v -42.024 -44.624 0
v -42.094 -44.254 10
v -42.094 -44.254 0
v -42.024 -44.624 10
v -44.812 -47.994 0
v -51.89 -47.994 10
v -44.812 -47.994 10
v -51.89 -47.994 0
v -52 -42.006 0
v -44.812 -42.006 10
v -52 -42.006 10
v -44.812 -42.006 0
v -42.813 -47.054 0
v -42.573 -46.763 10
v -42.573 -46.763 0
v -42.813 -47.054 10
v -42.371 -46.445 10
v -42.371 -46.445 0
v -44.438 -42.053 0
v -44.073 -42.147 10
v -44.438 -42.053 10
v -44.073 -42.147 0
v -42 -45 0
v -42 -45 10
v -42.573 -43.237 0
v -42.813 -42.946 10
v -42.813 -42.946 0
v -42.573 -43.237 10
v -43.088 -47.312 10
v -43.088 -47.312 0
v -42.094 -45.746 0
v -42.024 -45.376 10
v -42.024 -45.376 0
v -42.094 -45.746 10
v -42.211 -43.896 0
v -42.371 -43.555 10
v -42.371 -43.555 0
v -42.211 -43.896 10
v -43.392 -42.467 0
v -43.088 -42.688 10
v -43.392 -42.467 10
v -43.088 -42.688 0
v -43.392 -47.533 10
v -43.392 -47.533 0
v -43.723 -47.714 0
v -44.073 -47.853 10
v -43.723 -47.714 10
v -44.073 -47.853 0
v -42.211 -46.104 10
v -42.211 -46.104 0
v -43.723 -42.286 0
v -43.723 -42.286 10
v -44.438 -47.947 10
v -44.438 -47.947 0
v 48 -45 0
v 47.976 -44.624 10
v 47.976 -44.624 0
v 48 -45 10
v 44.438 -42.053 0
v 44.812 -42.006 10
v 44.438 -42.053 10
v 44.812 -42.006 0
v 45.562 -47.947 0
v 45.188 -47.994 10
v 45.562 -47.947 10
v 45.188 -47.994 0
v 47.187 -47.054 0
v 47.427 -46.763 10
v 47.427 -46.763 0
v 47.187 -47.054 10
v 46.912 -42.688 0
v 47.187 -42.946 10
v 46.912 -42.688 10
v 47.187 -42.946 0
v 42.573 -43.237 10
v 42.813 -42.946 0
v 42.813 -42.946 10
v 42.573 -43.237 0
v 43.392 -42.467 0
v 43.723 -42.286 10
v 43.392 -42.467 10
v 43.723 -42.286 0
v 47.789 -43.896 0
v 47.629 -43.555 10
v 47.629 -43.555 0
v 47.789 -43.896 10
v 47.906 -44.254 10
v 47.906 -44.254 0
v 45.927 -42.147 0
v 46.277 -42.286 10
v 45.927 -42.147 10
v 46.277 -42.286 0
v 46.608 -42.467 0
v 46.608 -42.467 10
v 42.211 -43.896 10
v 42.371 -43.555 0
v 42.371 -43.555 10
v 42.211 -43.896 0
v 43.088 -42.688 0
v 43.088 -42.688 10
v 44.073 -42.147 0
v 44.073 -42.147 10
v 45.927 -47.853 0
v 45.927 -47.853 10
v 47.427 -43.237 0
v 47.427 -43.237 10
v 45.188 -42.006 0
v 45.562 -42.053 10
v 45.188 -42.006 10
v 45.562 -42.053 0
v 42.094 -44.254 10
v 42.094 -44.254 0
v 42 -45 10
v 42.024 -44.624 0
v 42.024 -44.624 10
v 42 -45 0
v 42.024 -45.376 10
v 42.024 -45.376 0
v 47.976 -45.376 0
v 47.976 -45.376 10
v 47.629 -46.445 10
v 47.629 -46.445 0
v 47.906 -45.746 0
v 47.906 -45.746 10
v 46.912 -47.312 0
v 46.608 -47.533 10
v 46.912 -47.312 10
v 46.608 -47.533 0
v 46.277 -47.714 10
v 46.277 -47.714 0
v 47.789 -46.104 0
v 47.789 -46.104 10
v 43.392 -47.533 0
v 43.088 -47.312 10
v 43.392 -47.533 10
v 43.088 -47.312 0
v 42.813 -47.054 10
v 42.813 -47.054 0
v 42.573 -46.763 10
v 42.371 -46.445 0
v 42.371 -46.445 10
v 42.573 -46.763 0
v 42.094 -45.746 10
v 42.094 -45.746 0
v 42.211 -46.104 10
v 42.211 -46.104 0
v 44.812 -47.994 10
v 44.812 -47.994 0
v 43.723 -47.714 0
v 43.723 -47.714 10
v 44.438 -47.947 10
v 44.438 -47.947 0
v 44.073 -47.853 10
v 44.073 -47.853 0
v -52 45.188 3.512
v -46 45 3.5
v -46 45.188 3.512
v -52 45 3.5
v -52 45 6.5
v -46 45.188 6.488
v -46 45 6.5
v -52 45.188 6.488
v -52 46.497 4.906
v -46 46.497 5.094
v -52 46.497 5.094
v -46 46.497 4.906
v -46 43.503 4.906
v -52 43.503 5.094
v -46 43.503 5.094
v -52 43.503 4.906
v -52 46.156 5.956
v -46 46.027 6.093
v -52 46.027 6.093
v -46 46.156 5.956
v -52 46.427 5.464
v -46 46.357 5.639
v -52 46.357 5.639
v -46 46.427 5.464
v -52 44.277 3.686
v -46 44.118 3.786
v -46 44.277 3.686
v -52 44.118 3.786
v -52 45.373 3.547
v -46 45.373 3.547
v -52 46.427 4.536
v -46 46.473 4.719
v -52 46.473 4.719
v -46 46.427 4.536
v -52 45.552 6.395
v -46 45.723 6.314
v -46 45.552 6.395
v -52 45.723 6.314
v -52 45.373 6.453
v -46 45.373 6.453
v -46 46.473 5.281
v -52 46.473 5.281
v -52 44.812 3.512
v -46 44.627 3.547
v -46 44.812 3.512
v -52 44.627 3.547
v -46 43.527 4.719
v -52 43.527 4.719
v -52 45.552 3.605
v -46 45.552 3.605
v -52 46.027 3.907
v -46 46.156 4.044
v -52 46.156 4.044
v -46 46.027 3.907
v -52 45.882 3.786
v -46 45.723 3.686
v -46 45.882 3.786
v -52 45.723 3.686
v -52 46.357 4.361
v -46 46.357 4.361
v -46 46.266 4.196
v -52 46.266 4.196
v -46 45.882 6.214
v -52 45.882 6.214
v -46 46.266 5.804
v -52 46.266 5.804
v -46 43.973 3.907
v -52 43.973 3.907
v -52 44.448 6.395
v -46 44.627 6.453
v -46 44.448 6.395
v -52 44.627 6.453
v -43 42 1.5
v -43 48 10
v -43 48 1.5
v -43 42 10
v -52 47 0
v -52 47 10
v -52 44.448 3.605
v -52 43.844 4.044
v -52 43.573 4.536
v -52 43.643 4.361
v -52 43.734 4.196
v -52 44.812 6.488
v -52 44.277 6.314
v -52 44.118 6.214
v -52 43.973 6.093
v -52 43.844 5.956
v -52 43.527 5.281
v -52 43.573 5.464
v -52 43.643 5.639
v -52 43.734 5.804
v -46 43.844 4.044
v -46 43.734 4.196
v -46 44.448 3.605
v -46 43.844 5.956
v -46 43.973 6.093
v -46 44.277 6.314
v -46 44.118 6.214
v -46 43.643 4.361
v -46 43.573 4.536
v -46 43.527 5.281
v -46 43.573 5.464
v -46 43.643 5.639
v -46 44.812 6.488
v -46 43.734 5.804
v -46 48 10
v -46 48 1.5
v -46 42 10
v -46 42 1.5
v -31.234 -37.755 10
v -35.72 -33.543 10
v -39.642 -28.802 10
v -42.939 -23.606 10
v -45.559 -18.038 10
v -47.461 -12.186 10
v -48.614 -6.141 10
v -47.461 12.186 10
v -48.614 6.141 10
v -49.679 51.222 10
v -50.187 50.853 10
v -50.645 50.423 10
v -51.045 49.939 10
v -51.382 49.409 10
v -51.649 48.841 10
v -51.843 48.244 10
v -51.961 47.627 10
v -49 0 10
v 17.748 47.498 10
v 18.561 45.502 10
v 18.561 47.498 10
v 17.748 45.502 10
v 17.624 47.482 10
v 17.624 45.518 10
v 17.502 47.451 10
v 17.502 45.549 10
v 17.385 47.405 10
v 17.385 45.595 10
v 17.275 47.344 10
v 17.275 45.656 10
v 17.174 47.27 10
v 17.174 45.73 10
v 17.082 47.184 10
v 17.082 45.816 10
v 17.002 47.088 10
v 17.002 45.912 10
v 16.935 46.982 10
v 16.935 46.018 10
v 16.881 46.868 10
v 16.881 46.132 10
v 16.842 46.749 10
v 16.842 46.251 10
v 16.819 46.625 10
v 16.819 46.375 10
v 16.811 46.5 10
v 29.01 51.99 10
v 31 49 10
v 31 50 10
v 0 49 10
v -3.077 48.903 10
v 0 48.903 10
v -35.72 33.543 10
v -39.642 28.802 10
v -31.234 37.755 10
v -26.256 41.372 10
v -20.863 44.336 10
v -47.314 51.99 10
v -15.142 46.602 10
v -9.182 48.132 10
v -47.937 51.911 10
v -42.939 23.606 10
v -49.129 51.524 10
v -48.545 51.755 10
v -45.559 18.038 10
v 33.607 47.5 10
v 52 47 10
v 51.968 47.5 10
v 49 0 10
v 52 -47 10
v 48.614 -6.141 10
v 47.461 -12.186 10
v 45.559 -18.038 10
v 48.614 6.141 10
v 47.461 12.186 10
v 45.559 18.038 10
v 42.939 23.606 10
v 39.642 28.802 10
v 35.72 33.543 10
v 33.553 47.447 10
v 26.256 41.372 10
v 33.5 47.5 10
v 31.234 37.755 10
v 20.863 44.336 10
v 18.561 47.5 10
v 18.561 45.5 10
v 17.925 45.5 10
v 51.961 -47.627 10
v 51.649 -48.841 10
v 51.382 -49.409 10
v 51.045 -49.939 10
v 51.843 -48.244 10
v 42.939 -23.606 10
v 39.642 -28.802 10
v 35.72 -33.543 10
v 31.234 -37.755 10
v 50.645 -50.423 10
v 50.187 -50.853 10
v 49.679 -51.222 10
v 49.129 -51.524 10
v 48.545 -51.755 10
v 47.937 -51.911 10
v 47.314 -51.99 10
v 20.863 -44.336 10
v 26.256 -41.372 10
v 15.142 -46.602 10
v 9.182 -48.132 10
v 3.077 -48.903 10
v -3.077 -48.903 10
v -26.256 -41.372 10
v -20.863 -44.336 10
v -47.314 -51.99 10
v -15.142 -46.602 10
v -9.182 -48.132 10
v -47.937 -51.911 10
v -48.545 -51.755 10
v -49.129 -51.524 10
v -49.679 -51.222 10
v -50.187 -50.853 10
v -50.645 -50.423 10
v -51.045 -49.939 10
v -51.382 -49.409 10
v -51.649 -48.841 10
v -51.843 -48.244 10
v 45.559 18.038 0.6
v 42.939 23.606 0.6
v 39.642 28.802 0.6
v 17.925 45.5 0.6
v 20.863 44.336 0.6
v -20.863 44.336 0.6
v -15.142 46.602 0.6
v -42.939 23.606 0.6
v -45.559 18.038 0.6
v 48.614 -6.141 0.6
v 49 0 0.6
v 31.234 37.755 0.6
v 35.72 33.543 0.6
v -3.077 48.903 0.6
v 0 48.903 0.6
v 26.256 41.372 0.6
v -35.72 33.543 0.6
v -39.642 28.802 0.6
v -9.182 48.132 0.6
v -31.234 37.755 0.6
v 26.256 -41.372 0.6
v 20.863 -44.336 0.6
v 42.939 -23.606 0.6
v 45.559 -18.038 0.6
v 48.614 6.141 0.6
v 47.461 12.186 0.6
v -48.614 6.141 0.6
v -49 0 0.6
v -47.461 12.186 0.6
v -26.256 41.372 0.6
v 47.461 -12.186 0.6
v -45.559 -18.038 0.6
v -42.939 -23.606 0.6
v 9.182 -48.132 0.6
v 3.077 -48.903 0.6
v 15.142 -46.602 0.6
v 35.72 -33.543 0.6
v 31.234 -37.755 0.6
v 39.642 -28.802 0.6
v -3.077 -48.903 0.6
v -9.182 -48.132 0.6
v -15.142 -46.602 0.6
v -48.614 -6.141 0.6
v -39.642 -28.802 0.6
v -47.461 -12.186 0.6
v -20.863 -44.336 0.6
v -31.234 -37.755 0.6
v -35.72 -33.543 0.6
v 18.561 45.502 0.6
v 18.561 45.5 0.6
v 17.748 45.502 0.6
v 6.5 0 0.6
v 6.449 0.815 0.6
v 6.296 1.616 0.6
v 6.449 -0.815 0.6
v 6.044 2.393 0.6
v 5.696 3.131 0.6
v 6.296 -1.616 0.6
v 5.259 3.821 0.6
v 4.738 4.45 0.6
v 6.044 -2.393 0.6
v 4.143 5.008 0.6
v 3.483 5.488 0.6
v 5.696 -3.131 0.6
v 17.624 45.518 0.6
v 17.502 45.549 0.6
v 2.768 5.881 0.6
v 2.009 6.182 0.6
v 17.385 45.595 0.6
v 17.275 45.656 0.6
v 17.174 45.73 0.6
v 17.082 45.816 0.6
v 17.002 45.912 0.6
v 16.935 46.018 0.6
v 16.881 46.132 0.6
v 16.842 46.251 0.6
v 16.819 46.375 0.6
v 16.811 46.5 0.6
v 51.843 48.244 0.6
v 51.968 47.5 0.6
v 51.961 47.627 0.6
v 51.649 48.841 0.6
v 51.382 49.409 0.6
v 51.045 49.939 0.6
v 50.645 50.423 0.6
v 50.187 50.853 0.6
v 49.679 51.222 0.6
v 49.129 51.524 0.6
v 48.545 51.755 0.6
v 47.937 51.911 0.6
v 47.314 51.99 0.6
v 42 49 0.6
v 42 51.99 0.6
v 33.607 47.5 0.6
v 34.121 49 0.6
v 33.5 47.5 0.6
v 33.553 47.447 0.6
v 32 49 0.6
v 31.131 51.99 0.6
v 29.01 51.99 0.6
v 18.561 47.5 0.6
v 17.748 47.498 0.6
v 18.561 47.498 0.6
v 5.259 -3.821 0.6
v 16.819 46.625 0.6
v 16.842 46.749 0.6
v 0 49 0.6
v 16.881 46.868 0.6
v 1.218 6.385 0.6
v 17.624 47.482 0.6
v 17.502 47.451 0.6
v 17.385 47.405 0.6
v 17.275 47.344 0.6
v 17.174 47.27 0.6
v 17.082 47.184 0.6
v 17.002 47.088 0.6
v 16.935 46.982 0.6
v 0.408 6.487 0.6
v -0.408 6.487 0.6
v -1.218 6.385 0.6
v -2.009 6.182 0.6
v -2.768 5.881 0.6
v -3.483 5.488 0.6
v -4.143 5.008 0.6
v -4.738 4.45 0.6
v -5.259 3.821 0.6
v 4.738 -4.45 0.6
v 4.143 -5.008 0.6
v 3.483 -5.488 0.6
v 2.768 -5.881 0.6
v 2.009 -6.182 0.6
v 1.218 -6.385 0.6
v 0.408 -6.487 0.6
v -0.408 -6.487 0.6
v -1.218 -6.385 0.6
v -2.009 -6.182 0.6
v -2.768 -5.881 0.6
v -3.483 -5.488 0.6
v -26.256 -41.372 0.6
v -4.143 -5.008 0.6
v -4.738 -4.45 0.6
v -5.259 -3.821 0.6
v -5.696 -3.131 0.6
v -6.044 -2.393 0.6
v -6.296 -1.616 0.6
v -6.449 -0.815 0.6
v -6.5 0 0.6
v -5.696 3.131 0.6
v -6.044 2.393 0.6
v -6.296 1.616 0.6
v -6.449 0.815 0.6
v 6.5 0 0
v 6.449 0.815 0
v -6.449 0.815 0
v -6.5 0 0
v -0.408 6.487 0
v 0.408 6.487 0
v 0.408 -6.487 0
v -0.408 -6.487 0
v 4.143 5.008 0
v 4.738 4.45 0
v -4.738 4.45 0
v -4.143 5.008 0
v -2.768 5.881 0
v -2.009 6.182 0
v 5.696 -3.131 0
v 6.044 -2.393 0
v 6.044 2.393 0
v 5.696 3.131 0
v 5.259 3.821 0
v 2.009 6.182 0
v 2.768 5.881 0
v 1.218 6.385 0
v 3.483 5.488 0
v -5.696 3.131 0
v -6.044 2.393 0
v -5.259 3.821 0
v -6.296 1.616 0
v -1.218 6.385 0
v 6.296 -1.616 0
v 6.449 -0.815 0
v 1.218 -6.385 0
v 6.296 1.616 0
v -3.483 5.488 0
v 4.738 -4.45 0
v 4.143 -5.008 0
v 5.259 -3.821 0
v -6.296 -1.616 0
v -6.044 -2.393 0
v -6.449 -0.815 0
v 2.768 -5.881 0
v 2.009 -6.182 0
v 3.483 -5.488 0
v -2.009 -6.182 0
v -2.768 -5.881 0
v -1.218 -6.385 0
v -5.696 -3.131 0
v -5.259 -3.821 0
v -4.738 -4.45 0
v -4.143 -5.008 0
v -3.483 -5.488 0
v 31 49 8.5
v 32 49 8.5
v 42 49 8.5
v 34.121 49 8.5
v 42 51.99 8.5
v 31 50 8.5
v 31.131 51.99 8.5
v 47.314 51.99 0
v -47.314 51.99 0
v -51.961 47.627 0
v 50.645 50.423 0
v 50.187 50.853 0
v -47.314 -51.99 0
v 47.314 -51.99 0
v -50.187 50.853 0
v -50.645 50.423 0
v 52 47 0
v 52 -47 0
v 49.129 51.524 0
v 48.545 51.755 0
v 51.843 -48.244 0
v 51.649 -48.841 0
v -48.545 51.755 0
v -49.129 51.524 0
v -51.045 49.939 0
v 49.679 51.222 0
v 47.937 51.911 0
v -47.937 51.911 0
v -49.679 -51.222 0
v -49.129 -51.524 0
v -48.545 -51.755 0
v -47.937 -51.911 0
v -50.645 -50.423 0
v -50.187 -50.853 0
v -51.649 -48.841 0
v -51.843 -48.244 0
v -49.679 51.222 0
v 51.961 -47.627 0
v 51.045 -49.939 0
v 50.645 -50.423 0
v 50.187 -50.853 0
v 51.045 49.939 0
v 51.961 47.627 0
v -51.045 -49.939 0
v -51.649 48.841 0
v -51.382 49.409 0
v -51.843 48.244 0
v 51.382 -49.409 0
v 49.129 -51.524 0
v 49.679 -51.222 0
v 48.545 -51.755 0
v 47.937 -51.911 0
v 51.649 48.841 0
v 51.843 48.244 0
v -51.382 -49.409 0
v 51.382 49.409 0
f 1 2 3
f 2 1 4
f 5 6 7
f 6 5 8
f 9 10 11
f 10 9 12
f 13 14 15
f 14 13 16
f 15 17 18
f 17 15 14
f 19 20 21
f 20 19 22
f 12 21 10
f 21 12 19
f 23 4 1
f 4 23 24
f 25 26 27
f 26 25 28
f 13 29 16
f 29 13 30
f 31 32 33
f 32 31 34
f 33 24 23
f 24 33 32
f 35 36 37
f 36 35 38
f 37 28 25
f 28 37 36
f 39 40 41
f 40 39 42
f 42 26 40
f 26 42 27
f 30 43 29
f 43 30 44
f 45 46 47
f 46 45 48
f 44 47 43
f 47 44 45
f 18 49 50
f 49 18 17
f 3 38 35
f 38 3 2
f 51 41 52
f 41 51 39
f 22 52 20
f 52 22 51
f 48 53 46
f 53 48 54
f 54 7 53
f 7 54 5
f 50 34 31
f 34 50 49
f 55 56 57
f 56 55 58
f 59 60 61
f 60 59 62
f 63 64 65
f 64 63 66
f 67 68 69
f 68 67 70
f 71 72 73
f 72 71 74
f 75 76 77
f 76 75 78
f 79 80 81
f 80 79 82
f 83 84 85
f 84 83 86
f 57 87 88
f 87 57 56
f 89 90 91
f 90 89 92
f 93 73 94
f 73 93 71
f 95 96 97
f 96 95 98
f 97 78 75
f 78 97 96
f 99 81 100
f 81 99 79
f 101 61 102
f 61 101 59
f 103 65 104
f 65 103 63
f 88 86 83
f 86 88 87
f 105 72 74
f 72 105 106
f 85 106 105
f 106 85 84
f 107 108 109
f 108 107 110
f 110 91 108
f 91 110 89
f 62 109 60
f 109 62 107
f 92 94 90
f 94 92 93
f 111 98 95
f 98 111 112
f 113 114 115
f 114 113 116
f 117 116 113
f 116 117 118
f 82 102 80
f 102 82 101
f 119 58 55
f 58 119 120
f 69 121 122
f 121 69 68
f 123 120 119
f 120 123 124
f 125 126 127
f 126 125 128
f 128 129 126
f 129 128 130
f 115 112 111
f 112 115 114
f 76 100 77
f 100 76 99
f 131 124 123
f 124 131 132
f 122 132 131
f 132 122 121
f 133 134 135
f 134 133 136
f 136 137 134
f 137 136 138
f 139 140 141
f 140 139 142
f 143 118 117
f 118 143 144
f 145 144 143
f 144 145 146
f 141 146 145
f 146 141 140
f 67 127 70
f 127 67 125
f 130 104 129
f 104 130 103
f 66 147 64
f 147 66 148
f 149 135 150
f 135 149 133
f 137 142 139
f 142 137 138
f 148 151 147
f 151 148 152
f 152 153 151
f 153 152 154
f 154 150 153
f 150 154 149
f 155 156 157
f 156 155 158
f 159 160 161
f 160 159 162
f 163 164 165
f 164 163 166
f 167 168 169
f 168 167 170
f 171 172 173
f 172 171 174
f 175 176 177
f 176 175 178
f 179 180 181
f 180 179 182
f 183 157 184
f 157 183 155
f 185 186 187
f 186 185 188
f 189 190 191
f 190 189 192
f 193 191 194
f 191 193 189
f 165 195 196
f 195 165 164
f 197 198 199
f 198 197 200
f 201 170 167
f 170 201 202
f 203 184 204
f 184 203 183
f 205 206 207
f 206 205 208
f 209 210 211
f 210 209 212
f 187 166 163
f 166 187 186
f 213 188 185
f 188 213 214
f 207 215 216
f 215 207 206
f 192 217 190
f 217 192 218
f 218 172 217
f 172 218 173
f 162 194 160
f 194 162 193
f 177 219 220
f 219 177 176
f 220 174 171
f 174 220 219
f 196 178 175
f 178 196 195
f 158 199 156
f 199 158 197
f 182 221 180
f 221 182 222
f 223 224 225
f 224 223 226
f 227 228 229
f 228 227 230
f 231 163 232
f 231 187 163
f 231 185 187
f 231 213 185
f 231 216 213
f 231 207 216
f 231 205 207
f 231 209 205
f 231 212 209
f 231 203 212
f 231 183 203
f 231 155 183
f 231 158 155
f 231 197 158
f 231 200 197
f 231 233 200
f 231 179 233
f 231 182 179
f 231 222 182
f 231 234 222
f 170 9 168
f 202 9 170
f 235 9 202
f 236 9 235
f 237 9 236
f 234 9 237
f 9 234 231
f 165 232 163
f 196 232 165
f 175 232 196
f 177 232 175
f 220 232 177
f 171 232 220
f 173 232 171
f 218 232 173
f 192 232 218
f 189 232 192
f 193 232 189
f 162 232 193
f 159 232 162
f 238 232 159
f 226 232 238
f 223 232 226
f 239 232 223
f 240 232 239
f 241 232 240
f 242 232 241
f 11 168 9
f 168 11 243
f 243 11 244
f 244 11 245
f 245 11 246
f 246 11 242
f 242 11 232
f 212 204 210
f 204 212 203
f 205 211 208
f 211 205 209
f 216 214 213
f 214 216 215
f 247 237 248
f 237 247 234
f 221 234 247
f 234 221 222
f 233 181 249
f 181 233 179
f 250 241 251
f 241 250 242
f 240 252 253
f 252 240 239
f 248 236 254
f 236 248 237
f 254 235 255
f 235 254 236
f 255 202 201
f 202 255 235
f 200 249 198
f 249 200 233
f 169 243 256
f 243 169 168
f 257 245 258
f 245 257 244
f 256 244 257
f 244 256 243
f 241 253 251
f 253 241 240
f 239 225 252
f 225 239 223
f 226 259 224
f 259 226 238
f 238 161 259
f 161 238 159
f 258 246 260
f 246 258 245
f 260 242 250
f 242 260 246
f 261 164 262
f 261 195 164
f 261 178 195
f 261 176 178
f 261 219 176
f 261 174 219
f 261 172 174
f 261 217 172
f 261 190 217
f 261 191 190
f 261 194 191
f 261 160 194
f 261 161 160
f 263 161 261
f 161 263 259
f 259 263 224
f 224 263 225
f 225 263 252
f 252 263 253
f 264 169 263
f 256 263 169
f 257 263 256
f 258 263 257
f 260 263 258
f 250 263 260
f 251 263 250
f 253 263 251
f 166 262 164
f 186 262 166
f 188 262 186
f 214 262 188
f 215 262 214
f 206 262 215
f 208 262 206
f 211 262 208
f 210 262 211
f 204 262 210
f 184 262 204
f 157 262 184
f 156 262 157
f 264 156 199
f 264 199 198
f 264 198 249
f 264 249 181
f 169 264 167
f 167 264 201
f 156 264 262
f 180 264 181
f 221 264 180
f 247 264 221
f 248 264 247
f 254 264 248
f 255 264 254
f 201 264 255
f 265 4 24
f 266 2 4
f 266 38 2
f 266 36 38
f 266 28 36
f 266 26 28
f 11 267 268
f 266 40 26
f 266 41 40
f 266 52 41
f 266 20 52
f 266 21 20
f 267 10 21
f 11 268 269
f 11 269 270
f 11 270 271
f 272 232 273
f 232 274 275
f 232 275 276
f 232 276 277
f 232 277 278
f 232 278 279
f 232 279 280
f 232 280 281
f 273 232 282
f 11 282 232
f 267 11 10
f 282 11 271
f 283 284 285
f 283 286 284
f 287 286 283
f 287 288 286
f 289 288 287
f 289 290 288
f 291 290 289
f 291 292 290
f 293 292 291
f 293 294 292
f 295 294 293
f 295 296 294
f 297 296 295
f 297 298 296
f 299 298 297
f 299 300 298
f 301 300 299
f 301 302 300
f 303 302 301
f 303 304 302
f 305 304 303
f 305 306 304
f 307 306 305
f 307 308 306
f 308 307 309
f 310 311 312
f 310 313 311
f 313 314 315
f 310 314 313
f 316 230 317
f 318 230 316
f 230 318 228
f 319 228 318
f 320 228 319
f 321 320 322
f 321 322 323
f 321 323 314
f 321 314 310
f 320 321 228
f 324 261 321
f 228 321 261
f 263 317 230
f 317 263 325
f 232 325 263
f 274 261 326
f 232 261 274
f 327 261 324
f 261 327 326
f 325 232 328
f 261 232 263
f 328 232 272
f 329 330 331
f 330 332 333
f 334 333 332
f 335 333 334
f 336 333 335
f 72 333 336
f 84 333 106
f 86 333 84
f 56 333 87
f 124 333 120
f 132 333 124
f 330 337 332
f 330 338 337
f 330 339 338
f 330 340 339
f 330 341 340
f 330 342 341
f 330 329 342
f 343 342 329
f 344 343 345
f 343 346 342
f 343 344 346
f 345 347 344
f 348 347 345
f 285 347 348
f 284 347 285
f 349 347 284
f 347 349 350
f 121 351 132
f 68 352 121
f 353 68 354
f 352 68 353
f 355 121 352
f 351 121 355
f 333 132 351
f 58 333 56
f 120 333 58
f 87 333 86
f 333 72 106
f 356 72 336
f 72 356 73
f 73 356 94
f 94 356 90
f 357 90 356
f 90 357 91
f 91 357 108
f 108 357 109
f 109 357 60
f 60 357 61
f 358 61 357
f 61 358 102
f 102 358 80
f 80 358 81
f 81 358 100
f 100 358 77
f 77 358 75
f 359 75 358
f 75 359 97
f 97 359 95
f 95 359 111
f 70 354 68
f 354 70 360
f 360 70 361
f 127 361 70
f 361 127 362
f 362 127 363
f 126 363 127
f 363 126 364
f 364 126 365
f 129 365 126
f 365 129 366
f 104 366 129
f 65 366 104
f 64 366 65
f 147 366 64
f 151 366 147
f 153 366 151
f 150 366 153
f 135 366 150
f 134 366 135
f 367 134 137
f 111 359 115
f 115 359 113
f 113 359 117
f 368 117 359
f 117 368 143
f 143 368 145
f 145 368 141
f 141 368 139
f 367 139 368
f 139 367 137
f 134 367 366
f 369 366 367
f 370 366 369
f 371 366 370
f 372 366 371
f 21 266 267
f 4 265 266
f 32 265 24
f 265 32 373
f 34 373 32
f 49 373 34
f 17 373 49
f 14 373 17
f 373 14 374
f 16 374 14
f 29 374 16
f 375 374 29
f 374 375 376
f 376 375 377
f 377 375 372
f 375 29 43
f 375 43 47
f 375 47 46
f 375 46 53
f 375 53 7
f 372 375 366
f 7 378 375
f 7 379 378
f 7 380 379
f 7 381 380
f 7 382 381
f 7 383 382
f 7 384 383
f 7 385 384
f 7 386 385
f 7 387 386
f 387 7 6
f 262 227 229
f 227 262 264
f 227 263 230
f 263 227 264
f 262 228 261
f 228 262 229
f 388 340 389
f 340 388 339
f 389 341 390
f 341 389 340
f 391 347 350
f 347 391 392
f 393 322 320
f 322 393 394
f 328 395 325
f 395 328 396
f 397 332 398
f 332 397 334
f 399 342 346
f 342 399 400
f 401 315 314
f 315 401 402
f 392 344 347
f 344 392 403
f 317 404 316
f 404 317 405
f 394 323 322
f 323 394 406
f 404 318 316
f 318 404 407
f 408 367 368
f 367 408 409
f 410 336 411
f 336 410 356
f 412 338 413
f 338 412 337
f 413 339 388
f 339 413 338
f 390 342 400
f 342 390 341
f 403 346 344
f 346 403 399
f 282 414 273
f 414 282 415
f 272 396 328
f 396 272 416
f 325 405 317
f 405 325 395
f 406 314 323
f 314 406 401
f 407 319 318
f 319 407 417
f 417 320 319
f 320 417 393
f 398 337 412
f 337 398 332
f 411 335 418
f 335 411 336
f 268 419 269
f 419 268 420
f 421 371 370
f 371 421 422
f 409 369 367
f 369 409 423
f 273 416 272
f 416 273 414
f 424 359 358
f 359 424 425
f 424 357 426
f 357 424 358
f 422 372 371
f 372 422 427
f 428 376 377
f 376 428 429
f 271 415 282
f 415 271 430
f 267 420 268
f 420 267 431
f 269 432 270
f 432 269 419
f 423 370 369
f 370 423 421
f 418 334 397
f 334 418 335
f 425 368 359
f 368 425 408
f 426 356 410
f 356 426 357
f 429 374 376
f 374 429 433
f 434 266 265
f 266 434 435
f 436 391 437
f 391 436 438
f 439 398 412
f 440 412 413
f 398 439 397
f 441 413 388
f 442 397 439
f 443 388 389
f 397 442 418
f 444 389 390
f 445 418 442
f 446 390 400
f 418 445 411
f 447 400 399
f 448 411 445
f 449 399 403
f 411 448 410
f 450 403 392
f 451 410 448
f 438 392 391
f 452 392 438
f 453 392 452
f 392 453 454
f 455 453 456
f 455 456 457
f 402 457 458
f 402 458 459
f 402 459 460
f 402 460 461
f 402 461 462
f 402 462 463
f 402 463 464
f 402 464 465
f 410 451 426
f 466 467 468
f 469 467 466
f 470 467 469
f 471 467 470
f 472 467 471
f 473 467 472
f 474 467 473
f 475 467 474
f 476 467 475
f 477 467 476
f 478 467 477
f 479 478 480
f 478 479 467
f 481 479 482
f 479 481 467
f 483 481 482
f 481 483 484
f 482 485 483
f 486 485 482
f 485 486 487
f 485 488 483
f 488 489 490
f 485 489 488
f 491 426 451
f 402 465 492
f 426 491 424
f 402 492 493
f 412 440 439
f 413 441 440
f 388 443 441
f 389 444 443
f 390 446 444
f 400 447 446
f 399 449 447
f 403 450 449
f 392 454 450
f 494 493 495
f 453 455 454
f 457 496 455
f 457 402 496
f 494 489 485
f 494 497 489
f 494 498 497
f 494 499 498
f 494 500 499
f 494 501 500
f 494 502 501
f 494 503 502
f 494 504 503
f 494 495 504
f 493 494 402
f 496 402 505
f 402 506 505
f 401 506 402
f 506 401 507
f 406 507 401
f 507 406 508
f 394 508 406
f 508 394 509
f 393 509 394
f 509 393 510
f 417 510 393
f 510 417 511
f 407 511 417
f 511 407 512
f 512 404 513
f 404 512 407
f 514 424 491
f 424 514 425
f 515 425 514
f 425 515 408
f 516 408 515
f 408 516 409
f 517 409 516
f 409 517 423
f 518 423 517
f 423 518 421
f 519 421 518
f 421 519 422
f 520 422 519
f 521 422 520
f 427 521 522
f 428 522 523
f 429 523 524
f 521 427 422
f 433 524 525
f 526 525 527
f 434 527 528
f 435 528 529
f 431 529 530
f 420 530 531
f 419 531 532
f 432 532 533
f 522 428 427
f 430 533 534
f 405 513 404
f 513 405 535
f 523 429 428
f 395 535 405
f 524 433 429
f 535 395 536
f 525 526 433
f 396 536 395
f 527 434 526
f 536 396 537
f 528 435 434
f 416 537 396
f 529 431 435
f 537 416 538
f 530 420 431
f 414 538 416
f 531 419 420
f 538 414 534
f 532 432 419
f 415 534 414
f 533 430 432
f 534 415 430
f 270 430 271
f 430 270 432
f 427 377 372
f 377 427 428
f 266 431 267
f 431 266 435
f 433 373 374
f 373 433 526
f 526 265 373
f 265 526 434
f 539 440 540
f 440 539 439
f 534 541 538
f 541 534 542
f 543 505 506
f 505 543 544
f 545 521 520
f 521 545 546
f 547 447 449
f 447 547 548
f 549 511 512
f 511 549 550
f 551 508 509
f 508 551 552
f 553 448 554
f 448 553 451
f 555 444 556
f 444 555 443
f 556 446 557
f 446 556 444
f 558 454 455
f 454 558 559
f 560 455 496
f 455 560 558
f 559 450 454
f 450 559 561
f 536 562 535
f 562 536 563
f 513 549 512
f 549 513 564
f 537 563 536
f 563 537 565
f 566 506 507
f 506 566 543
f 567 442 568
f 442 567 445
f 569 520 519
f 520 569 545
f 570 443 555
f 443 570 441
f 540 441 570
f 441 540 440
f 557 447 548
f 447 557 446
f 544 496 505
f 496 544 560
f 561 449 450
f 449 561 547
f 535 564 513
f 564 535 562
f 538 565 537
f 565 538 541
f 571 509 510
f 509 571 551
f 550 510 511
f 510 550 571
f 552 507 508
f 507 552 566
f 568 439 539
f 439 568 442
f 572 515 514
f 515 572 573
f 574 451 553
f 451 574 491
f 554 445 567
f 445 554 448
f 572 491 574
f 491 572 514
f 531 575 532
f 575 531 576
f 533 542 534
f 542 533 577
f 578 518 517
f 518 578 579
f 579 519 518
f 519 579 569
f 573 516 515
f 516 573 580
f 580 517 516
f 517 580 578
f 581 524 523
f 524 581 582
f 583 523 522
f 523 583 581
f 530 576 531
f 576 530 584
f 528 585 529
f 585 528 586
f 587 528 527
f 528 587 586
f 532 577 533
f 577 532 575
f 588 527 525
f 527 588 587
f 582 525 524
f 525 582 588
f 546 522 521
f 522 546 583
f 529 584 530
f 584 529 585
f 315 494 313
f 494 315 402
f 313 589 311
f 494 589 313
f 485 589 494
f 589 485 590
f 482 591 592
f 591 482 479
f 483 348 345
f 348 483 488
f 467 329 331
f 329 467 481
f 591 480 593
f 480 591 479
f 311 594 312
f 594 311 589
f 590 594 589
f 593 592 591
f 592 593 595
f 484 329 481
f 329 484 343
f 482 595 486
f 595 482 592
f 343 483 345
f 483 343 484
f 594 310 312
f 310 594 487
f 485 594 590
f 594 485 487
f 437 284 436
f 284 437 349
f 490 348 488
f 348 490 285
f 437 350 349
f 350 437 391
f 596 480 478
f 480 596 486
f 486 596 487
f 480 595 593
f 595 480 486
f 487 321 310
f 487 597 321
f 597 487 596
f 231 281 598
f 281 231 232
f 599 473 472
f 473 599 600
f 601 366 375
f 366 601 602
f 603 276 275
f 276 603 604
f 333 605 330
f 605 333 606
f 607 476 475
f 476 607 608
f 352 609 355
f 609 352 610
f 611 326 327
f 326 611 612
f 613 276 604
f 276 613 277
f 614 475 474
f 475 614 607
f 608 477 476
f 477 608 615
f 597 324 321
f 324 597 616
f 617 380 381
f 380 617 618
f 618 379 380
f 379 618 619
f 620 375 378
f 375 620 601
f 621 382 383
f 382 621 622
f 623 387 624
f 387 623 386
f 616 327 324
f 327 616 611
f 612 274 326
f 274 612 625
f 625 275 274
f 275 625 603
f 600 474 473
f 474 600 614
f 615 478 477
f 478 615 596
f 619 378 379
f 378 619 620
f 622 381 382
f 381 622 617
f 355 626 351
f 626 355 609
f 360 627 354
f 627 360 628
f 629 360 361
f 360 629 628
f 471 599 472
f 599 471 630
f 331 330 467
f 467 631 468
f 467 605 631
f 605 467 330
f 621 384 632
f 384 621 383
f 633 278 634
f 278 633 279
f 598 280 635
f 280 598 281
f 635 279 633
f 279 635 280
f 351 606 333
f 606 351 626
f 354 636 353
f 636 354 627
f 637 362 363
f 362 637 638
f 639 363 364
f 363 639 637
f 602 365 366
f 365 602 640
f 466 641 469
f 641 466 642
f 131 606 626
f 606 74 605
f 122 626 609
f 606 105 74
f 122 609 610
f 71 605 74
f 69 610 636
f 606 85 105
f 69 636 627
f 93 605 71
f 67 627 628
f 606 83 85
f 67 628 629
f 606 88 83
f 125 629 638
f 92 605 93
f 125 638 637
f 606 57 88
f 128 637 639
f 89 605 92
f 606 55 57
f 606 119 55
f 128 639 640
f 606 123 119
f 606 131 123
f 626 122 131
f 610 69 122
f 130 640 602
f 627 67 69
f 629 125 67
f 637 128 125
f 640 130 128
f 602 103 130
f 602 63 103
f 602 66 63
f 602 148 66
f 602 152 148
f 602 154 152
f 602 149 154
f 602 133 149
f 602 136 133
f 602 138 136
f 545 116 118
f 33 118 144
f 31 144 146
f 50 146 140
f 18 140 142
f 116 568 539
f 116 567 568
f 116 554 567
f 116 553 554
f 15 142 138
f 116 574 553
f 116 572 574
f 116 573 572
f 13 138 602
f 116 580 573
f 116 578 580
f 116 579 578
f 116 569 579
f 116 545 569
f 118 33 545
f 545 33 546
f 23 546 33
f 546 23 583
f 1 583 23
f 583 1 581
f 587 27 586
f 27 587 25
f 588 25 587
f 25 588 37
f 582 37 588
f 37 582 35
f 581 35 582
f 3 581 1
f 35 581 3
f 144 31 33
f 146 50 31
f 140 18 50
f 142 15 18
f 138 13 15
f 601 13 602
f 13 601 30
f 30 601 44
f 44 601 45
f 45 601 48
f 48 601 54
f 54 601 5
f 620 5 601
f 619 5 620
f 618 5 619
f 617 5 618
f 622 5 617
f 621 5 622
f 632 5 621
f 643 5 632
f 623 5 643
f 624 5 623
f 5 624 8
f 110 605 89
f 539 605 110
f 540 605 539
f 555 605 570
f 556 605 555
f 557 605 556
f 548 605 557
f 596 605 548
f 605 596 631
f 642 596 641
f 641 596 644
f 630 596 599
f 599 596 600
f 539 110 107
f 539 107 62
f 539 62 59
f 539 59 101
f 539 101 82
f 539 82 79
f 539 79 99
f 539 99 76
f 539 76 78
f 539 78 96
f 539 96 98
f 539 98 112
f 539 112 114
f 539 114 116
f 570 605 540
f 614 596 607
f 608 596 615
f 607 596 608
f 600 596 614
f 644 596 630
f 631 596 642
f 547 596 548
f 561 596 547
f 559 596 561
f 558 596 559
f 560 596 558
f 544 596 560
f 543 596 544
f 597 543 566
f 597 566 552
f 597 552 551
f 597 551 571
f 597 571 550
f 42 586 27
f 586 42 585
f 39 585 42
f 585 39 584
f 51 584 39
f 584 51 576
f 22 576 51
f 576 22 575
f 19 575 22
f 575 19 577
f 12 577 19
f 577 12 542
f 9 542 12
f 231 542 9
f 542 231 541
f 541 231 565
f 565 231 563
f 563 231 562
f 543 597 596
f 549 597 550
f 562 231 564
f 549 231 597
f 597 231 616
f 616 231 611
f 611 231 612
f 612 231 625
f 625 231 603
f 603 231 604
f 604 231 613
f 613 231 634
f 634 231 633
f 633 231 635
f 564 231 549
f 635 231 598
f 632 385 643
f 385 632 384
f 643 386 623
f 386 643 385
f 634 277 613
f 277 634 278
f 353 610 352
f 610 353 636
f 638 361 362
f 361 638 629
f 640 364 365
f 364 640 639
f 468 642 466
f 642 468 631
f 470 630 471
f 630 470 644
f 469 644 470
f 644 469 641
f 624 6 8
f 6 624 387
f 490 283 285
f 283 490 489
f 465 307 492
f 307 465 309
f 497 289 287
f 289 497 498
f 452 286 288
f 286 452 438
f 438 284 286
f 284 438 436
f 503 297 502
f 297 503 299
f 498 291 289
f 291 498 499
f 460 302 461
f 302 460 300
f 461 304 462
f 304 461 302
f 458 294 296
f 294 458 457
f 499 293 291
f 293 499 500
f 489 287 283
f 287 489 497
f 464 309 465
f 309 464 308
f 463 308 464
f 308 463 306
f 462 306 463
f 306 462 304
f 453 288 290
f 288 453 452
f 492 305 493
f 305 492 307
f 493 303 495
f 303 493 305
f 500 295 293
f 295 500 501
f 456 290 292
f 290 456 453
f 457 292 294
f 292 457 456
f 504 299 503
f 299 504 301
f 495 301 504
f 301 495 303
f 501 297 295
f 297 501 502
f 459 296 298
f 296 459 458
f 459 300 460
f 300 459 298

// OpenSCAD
$fn = 50;


union() {
	difference() {
		union() {
			translate(v = [0, 0, 0]) {
				rotate(a = [0, 0, 0]) {
					hull() {
						translate(v = [-47.0000000000, 47.0000000000, 0]) {
							rotate(a = [0, 0, 0]) {
								translate(v = [0, 0, 0]) {
									rotate(a = [0, 0, 0]) {
										cylinder(h = 10, r = 5);
									}
								}
							}
						}
						translate(v = [47.0000000000, 47.0000000000, 0]) {
							rotate(a = [0, 0, 0]) {
								translate(v = [0, 0, 0]) {
									rotate(a = [0, 0, 0]) {
										cylinder(h = 10, r = 5);
									}
								}
							}
						}
						translate(v = [-47.0000000000, -47.0000000000, 0]) {
							rotate(a = [0, 0, 0]) {
								translate(v = [0, 0, 0]) {
									rotate(a = [0, 0, 0]) {
										cylinder(h = 10, r = 5);
									}
								}
							}
						}
						translate(v = [47.0000000000, -47.0000000000, 0]) {
							rotate(a = [0, 0, 0]) {
								translate(v = [0, 0, 0]) {
									rotate(a = [0, 0, 0]) {
										cylinder(h = 10, r = 5);
									}
								}
							}
						}
					}
				}
			}
		}
		union() {
			translate(v = [-52.5000000000, -45.0000000000, -125]) {
				rotate(a = [0, 0, 0]) {
					hull() {
						translate(v = [7.5000000000, 0, 0]) {
							rotate(a = [0, 0, 0]) {
								translate(v = [0, 0, 0]) {
									rotate(a = [0, 0, 0]) {
										cylinder(h = 250, r = 3.0000000000);
									}
								}
							}
						}
						translate(v = [-7.5000000000, 0, 0]) {
							rotate(a = [0, 0, 0]) {
								translate(v = [0, 0, 0]) {
									rotate(a = [0, 0, 0]) {
										cylinder(h = 250, r = 3.0000000000);
									}
								}
							}
						}
					}
				}
			}
			translate(v = [45.0000000000, -45.0000000000, -125.0000000000]) {
				rotate(a = [0, 0, 0]) {
					cylinder(h = 250, r = 3.0000000000);
				}
			}
			translate(v = [-52.0000000000, 45.0000000000, 5.0000000000]) {
				rotate(a = [0, 90, 0]) {
					cylinder(h = 9, r = 1.5000000000);
				}
			}
			translate(v = [-46.0000000000, 42.0000000000, 1.5000000000]) {
				rotate(a = [0, 0, 0]) {
					cube(size = [3, 6, 8.5000000000]);
				}
			}
			translate(v = [0, 0, 0.6000000000]) {
				rotate(a = [0, 0, 0]) {
					cylinder(h = 12.4000000000, r = 49.0000000000);
				}
			}
			translate(v = [0, 0, -5.0000000000]) {
				rotate(a = [0, 0, 0]) {
					cylinder(h = 10, r = 6.5000000000);
				}
			}
			translate(v = [0.0000000000, 47.5000000000, 0.6000000000]) {
				rotate(a = [0, 0, 0]) {
					cube(size = [52.0000000000, 1.5000000000, 12.4000000000]);
				}
			}
			translate(v = [42.0000000000, 47.5000000000, 0.6000000000]) {
				rotate(a = [0, 0, 0]) {
					cube(size = [10, 4.5000000000, 12.4000000000]);
				}
			}
			#translate(v = [31.0000000000, 47.5000000000, 8.5000000000]) {
				rotate(a = [0, 0, 0]) {
					cube(size = [21, 4.5000000000, 1.5000000000]);
				}
			}
			translate(v = [28.2500000000, 52.7500000000, 0.6000000000]) {
				rotate(a = [0, 0, -45]) {
					cube(size = [7.5000000000, 1.5000000000, 12.4000000000]);
				}
			}
			translate(v = [11.0610000000, 45.5000000000, 0.6000000000]) {
				rotate(a = [0, 0, 0]) {
					cube(size = [7.5000000000, 2, 9.4000000000]);
				}
			}
		}
	}
	union() {
		translate(v = [20.3110000000, 46.5000000000, 0]) {
			rotate(a = [0, 0, 0]) {
				hull() {
					translate(v = [2.5000000000, 0, 0]) {
						rotate(a = [0, 0, 0]) {
							translate(v = [0, 0, 0]) {
								rotate(a = [0, 0, 0]) {
									cylinder(h = 10, r = 1.0000000000);
								}
							}
						}
					}
					translate(v = [-2.5000000000, 0, 0]) {
						rotate(a = [0, 0, 0]) {
							translate(v = [0, 0, 0]) {
								rotate(a = [0, 0, 0]) {
									cylinder(h = 10, r = 1.0000000000);
								}
							}
						}
					}
				}
			}
		}
	}
}
